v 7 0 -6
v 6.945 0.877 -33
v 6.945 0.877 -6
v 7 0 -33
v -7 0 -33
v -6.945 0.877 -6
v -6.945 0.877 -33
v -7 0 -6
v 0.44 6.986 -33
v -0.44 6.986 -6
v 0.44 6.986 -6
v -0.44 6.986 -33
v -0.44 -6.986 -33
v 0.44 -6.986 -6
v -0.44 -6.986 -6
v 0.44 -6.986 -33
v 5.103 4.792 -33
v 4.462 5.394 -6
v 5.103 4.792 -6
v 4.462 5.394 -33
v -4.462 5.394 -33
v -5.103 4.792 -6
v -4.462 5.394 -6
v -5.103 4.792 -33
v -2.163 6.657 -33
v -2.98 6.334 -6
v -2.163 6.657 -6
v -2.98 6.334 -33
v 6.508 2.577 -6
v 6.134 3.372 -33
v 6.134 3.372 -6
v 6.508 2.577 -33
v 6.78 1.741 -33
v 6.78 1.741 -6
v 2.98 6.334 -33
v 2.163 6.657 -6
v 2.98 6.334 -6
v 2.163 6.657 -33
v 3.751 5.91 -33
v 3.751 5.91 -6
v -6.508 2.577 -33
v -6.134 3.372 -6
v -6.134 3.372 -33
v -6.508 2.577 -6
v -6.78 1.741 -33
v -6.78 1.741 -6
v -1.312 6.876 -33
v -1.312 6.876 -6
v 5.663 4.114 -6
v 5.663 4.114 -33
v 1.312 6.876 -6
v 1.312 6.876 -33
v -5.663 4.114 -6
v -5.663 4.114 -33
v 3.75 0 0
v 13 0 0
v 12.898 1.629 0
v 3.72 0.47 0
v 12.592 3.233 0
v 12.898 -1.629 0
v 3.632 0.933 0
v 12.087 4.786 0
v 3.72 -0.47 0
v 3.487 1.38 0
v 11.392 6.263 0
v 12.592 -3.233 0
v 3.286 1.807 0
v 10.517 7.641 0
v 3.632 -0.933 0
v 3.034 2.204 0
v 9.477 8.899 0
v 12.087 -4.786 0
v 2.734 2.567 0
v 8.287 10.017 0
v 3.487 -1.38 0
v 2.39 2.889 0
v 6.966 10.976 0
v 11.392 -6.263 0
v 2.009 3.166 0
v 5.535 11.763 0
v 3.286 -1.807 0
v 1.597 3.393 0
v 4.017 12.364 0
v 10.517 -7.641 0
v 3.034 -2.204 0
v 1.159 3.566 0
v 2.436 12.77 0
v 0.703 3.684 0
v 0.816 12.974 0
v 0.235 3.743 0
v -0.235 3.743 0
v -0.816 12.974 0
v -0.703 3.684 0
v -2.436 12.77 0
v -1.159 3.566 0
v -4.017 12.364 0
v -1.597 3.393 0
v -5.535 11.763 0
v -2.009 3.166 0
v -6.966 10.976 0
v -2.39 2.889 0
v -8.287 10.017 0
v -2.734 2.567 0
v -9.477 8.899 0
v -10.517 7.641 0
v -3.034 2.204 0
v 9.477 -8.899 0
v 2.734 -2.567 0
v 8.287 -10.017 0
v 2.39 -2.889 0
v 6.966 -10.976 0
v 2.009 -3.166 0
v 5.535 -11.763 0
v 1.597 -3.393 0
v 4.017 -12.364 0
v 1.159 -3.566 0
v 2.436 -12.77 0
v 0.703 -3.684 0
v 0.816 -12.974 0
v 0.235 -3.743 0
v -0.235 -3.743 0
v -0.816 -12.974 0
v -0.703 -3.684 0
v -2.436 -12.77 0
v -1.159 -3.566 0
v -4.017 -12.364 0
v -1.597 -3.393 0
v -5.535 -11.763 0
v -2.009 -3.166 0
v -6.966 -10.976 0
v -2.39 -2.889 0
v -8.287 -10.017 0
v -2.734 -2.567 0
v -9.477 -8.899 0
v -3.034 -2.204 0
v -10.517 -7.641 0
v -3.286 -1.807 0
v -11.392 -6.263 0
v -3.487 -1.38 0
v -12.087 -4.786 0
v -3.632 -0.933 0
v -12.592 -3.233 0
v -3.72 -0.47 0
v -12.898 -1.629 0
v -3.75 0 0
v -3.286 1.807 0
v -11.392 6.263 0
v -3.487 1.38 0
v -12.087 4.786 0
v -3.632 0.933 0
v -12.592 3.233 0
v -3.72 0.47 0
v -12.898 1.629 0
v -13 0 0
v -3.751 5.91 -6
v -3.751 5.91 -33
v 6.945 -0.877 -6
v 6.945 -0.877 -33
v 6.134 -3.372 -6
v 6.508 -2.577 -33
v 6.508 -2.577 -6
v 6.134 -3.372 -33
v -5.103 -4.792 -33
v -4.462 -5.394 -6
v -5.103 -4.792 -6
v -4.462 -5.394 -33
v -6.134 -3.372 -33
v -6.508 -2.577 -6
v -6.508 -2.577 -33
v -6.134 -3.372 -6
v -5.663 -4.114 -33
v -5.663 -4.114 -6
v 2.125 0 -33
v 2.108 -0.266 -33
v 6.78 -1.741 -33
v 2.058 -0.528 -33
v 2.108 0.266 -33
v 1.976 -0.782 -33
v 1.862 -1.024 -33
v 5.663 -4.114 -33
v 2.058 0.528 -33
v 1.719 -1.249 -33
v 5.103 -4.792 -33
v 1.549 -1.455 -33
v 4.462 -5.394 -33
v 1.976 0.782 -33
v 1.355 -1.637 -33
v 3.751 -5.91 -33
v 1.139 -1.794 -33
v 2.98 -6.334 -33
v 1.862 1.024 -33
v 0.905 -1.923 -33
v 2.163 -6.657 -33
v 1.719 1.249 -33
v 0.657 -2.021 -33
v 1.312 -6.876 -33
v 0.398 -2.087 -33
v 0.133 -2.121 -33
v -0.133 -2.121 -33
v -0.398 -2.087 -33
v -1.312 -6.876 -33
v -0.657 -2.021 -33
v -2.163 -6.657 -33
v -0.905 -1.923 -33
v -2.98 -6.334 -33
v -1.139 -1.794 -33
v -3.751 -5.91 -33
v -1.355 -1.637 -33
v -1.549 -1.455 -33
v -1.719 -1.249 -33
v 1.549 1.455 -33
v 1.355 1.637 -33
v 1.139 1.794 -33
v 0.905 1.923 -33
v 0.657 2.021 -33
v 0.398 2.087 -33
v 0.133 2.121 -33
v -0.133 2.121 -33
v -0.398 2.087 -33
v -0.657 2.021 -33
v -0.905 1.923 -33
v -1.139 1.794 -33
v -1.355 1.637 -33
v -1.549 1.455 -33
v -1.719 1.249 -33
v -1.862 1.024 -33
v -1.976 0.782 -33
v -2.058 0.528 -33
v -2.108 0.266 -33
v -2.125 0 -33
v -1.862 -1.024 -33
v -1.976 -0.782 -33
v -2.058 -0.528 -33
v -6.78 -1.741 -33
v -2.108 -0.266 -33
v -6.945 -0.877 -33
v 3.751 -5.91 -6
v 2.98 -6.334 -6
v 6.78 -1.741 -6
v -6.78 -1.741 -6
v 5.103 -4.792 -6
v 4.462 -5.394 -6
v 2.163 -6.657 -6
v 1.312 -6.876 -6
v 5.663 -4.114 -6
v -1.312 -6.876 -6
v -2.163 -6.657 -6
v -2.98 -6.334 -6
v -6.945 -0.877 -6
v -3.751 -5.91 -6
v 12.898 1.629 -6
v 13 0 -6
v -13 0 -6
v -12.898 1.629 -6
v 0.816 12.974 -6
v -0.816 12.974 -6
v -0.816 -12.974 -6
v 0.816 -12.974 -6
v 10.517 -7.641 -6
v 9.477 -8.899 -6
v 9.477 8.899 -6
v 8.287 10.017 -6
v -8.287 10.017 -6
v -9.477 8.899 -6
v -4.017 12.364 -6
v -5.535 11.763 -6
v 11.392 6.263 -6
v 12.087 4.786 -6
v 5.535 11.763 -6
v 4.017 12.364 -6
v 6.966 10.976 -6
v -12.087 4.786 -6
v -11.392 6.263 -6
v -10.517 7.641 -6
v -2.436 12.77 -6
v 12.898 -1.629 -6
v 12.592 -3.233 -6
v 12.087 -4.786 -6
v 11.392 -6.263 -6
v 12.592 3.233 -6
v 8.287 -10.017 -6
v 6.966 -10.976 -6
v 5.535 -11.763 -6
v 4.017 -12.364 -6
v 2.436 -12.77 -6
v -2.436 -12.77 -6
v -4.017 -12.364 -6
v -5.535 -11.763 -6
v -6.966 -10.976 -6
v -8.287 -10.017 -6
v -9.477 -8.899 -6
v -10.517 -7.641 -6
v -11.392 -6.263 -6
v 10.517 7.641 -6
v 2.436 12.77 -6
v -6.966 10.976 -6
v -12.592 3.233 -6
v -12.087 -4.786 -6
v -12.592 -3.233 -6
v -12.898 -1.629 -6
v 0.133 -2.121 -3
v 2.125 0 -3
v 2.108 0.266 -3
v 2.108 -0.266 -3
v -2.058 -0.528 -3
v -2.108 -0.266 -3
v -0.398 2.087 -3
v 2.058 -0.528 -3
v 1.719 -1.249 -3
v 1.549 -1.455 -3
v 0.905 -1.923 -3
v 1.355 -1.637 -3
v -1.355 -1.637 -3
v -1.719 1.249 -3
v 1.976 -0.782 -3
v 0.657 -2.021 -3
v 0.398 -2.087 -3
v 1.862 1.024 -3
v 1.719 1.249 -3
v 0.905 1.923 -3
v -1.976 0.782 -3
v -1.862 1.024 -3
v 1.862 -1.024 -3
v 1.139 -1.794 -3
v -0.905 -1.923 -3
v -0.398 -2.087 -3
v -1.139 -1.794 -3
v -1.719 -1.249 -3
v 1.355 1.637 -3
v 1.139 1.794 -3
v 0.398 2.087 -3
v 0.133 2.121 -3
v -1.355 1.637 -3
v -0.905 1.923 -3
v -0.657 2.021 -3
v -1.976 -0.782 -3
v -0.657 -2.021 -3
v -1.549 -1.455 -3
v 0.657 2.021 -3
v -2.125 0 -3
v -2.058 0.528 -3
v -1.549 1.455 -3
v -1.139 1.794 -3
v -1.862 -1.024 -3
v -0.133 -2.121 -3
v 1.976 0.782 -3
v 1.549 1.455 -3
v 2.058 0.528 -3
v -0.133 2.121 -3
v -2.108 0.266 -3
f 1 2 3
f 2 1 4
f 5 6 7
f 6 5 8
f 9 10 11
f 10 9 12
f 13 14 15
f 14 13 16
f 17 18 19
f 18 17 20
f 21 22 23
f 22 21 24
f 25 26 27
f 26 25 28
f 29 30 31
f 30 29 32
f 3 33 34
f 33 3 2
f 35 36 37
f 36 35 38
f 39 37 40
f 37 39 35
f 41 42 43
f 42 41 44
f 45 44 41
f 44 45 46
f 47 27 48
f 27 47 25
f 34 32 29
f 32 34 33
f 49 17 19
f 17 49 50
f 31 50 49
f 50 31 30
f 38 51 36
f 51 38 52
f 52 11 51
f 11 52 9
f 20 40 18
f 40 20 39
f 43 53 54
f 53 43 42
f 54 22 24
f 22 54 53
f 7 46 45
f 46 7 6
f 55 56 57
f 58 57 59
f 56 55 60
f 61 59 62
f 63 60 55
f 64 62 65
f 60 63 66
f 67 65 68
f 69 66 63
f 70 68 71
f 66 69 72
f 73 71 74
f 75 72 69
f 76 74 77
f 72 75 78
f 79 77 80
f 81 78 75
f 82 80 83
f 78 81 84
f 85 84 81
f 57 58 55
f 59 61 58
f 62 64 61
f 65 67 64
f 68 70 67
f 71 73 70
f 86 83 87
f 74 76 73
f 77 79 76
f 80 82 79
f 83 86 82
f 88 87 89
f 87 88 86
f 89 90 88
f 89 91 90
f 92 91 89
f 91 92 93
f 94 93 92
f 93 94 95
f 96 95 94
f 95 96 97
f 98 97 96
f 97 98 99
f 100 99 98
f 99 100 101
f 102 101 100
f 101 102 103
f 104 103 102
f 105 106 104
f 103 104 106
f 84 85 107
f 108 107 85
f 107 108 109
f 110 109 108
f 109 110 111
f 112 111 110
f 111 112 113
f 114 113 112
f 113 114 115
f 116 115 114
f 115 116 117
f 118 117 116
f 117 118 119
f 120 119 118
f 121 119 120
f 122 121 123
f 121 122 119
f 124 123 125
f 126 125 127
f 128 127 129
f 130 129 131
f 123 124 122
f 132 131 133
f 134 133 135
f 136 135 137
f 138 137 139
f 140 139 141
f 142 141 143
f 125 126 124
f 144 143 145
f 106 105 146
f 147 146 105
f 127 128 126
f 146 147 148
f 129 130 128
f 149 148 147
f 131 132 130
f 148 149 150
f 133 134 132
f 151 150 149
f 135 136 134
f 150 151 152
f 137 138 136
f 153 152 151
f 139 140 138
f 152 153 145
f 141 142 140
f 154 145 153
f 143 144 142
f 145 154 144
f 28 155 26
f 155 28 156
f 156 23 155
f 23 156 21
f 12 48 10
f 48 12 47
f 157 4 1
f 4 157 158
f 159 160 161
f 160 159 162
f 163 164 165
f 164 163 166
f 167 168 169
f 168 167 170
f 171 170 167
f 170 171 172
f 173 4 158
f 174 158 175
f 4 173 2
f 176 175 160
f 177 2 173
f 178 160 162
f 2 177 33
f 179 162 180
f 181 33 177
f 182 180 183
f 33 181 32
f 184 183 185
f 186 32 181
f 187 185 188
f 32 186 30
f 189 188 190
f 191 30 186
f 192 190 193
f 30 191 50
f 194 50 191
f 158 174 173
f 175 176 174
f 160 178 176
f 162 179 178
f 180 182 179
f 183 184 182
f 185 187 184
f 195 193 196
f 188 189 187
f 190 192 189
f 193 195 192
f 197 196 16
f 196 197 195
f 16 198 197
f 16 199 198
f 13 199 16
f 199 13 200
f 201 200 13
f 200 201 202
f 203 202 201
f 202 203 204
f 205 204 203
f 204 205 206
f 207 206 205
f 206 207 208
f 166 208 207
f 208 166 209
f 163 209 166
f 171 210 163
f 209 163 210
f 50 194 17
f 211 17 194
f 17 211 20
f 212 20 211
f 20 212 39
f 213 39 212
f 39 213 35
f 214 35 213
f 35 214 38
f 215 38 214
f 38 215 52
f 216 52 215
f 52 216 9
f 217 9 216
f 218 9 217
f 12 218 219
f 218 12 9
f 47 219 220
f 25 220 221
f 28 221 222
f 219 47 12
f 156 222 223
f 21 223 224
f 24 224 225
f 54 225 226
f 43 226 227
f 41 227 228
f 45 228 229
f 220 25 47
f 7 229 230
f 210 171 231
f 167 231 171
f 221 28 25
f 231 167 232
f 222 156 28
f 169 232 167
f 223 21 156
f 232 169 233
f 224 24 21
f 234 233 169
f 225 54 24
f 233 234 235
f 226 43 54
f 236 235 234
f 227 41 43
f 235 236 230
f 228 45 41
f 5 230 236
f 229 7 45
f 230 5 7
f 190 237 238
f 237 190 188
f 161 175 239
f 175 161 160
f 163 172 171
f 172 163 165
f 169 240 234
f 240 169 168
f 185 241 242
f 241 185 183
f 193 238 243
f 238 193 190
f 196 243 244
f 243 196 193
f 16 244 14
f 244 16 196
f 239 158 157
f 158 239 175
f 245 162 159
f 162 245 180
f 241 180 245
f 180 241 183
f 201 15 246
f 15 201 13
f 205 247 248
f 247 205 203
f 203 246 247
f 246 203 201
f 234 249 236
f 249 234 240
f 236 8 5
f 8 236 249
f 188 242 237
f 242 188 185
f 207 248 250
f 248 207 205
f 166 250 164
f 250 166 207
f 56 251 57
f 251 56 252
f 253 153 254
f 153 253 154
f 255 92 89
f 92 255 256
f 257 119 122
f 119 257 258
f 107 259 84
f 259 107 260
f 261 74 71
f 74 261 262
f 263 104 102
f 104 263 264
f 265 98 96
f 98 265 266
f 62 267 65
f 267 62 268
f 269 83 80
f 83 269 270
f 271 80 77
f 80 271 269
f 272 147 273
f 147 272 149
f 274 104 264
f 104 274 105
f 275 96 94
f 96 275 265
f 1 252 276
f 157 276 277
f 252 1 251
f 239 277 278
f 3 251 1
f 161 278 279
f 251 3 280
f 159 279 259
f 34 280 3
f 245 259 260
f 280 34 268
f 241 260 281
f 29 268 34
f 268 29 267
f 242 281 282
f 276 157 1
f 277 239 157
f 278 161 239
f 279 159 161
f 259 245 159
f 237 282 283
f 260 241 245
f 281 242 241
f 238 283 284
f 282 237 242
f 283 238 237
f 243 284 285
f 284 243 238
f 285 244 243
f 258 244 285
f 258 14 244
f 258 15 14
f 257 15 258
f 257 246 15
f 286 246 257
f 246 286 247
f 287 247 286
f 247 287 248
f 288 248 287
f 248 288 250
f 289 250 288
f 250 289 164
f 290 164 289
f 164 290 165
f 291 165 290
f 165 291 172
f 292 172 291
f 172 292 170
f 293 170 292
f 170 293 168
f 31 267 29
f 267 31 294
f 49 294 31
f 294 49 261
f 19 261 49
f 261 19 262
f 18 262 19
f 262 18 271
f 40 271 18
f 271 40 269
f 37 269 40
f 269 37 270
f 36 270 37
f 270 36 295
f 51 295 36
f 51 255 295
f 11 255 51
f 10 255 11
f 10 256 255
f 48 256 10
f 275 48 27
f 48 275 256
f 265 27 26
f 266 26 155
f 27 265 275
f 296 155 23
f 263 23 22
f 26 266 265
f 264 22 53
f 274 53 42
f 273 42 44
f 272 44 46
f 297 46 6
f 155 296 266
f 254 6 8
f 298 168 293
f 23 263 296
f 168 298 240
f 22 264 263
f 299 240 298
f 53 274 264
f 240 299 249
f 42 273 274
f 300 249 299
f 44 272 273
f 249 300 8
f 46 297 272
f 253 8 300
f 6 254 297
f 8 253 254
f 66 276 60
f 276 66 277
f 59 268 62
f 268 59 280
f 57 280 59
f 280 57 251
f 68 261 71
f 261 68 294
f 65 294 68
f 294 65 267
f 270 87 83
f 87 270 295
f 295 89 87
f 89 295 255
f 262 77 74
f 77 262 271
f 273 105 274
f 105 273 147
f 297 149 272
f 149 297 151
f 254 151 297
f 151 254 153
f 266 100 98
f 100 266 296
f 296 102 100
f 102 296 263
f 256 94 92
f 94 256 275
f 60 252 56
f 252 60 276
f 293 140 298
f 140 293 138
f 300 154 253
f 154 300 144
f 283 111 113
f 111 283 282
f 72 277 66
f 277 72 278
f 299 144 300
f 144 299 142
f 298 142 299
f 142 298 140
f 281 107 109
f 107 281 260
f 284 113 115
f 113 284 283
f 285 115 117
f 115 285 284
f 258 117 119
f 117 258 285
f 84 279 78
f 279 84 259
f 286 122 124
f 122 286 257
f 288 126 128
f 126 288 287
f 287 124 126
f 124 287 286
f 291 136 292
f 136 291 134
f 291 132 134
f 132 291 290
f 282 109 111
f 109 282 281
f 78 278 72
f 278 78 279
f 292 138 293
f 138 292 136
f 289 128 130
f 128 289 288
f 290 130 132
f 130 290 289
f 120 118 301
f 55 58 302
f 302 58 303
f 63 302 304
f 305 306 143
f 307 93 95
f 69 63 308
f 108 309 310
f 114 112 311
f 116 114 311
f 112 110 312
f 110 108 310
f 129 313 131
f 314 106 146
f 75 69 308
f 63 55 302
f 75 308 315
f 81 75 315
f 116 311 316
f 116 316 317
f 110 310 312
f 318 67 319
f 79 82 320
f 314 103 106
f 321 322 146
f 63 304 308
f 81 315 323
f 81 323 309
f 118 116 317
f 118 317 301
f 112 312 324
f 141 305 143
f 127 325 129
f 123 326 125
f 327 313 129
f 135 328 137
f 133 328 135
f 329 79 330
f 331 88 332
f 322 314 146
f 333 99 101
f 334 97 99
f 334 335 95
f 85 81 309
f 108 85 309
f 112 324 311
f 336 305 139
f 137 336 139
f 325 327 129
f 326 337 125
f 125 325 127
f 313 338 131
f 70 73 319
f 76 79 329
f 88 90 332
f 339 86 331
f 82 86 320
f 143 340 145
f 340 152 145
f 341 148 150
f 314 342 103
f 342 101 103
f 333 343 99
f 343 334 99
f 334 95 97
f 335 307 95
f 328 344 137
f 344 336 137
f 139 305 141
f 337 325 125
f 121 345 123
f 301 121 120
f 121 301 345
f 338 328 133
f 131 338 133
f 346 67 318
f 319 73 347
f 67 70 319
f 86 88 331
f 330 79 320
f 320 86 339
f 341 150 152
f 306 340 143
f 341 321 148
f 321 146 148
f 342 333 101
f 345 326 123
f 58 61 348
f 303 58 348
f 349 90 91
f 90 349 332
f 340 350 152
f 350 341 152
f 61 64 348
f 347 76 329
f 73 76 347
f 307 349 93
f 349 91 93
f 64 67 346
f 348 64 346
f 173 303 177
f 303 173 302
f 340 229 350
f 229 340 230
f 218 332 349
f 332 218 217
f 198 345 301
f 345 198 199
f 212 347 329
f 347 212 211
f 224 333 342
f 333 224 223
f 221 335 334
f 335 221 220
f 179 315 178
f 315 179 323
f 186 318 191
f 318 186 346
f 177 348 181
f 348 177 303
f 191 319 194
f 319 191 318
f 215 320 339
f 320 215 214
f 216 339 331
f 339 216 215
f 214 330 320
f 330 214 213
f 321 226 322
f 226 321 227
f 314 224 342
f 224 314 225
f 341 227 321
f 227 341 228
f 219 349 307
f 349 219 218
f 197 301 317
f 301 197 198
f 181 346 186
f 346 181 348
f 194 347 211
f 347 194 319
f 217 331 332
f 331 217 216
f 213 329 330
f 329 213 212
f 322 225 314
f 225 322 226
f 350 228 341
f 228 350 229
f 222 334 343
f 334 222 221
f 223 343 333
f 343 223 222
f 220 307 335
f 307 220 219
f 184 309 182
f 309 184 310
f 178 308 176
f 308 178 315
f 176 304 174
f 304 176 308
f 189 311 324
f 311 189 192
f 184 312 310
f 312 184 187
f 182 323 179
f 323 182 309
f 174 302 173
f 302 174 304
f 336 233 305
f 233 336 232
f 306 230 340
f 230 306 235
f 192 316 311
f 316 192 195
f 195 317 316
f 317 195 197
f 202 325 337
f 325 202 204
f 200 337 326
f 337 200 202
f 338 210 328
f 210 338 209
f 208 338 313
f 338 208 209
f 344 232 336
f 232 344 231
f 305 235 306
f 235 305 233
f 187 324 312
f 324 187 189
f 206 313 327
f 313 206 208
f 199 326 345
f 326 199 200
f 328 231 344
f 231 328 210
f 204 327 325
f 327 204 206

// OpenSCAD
$fn = 50;


difference() {
	union() {
		translate(v = [0, 0, -33.0000000000]) {
			cylinder(h = 33, r = 7.0000000000);
		}
		translate(v = [0, 0, -6.0000000000]) {
			cylinder(h = 6, r = 13.0000000000);
		}
	}
	union() {
		translate(v = [0, 0, 0]) {
			rotate(a = [0, 0, 0]) {
				difference() {
					union() {
						#translate(v = [0, 0, -33.0000000000]) {
							cylinder(h = 33, r = 2.0000000000);
						}
						#translate(v = [0, 0, -3]) {
							cylinder(h = 3, r1 = 2.1250000000, r2 = 3.7500000000);
						}
						#translate(v = [0, 0, -33.0000000000]) {
							cylinder(h = 33, r = 2.1250000000);
						}
						#translate(v = [0, 0, -33.0000000000]) {
							cylinder(h = 33, r = 2.0000000000);
						}
					}
					union();
				}
			}
		}
	}
}
